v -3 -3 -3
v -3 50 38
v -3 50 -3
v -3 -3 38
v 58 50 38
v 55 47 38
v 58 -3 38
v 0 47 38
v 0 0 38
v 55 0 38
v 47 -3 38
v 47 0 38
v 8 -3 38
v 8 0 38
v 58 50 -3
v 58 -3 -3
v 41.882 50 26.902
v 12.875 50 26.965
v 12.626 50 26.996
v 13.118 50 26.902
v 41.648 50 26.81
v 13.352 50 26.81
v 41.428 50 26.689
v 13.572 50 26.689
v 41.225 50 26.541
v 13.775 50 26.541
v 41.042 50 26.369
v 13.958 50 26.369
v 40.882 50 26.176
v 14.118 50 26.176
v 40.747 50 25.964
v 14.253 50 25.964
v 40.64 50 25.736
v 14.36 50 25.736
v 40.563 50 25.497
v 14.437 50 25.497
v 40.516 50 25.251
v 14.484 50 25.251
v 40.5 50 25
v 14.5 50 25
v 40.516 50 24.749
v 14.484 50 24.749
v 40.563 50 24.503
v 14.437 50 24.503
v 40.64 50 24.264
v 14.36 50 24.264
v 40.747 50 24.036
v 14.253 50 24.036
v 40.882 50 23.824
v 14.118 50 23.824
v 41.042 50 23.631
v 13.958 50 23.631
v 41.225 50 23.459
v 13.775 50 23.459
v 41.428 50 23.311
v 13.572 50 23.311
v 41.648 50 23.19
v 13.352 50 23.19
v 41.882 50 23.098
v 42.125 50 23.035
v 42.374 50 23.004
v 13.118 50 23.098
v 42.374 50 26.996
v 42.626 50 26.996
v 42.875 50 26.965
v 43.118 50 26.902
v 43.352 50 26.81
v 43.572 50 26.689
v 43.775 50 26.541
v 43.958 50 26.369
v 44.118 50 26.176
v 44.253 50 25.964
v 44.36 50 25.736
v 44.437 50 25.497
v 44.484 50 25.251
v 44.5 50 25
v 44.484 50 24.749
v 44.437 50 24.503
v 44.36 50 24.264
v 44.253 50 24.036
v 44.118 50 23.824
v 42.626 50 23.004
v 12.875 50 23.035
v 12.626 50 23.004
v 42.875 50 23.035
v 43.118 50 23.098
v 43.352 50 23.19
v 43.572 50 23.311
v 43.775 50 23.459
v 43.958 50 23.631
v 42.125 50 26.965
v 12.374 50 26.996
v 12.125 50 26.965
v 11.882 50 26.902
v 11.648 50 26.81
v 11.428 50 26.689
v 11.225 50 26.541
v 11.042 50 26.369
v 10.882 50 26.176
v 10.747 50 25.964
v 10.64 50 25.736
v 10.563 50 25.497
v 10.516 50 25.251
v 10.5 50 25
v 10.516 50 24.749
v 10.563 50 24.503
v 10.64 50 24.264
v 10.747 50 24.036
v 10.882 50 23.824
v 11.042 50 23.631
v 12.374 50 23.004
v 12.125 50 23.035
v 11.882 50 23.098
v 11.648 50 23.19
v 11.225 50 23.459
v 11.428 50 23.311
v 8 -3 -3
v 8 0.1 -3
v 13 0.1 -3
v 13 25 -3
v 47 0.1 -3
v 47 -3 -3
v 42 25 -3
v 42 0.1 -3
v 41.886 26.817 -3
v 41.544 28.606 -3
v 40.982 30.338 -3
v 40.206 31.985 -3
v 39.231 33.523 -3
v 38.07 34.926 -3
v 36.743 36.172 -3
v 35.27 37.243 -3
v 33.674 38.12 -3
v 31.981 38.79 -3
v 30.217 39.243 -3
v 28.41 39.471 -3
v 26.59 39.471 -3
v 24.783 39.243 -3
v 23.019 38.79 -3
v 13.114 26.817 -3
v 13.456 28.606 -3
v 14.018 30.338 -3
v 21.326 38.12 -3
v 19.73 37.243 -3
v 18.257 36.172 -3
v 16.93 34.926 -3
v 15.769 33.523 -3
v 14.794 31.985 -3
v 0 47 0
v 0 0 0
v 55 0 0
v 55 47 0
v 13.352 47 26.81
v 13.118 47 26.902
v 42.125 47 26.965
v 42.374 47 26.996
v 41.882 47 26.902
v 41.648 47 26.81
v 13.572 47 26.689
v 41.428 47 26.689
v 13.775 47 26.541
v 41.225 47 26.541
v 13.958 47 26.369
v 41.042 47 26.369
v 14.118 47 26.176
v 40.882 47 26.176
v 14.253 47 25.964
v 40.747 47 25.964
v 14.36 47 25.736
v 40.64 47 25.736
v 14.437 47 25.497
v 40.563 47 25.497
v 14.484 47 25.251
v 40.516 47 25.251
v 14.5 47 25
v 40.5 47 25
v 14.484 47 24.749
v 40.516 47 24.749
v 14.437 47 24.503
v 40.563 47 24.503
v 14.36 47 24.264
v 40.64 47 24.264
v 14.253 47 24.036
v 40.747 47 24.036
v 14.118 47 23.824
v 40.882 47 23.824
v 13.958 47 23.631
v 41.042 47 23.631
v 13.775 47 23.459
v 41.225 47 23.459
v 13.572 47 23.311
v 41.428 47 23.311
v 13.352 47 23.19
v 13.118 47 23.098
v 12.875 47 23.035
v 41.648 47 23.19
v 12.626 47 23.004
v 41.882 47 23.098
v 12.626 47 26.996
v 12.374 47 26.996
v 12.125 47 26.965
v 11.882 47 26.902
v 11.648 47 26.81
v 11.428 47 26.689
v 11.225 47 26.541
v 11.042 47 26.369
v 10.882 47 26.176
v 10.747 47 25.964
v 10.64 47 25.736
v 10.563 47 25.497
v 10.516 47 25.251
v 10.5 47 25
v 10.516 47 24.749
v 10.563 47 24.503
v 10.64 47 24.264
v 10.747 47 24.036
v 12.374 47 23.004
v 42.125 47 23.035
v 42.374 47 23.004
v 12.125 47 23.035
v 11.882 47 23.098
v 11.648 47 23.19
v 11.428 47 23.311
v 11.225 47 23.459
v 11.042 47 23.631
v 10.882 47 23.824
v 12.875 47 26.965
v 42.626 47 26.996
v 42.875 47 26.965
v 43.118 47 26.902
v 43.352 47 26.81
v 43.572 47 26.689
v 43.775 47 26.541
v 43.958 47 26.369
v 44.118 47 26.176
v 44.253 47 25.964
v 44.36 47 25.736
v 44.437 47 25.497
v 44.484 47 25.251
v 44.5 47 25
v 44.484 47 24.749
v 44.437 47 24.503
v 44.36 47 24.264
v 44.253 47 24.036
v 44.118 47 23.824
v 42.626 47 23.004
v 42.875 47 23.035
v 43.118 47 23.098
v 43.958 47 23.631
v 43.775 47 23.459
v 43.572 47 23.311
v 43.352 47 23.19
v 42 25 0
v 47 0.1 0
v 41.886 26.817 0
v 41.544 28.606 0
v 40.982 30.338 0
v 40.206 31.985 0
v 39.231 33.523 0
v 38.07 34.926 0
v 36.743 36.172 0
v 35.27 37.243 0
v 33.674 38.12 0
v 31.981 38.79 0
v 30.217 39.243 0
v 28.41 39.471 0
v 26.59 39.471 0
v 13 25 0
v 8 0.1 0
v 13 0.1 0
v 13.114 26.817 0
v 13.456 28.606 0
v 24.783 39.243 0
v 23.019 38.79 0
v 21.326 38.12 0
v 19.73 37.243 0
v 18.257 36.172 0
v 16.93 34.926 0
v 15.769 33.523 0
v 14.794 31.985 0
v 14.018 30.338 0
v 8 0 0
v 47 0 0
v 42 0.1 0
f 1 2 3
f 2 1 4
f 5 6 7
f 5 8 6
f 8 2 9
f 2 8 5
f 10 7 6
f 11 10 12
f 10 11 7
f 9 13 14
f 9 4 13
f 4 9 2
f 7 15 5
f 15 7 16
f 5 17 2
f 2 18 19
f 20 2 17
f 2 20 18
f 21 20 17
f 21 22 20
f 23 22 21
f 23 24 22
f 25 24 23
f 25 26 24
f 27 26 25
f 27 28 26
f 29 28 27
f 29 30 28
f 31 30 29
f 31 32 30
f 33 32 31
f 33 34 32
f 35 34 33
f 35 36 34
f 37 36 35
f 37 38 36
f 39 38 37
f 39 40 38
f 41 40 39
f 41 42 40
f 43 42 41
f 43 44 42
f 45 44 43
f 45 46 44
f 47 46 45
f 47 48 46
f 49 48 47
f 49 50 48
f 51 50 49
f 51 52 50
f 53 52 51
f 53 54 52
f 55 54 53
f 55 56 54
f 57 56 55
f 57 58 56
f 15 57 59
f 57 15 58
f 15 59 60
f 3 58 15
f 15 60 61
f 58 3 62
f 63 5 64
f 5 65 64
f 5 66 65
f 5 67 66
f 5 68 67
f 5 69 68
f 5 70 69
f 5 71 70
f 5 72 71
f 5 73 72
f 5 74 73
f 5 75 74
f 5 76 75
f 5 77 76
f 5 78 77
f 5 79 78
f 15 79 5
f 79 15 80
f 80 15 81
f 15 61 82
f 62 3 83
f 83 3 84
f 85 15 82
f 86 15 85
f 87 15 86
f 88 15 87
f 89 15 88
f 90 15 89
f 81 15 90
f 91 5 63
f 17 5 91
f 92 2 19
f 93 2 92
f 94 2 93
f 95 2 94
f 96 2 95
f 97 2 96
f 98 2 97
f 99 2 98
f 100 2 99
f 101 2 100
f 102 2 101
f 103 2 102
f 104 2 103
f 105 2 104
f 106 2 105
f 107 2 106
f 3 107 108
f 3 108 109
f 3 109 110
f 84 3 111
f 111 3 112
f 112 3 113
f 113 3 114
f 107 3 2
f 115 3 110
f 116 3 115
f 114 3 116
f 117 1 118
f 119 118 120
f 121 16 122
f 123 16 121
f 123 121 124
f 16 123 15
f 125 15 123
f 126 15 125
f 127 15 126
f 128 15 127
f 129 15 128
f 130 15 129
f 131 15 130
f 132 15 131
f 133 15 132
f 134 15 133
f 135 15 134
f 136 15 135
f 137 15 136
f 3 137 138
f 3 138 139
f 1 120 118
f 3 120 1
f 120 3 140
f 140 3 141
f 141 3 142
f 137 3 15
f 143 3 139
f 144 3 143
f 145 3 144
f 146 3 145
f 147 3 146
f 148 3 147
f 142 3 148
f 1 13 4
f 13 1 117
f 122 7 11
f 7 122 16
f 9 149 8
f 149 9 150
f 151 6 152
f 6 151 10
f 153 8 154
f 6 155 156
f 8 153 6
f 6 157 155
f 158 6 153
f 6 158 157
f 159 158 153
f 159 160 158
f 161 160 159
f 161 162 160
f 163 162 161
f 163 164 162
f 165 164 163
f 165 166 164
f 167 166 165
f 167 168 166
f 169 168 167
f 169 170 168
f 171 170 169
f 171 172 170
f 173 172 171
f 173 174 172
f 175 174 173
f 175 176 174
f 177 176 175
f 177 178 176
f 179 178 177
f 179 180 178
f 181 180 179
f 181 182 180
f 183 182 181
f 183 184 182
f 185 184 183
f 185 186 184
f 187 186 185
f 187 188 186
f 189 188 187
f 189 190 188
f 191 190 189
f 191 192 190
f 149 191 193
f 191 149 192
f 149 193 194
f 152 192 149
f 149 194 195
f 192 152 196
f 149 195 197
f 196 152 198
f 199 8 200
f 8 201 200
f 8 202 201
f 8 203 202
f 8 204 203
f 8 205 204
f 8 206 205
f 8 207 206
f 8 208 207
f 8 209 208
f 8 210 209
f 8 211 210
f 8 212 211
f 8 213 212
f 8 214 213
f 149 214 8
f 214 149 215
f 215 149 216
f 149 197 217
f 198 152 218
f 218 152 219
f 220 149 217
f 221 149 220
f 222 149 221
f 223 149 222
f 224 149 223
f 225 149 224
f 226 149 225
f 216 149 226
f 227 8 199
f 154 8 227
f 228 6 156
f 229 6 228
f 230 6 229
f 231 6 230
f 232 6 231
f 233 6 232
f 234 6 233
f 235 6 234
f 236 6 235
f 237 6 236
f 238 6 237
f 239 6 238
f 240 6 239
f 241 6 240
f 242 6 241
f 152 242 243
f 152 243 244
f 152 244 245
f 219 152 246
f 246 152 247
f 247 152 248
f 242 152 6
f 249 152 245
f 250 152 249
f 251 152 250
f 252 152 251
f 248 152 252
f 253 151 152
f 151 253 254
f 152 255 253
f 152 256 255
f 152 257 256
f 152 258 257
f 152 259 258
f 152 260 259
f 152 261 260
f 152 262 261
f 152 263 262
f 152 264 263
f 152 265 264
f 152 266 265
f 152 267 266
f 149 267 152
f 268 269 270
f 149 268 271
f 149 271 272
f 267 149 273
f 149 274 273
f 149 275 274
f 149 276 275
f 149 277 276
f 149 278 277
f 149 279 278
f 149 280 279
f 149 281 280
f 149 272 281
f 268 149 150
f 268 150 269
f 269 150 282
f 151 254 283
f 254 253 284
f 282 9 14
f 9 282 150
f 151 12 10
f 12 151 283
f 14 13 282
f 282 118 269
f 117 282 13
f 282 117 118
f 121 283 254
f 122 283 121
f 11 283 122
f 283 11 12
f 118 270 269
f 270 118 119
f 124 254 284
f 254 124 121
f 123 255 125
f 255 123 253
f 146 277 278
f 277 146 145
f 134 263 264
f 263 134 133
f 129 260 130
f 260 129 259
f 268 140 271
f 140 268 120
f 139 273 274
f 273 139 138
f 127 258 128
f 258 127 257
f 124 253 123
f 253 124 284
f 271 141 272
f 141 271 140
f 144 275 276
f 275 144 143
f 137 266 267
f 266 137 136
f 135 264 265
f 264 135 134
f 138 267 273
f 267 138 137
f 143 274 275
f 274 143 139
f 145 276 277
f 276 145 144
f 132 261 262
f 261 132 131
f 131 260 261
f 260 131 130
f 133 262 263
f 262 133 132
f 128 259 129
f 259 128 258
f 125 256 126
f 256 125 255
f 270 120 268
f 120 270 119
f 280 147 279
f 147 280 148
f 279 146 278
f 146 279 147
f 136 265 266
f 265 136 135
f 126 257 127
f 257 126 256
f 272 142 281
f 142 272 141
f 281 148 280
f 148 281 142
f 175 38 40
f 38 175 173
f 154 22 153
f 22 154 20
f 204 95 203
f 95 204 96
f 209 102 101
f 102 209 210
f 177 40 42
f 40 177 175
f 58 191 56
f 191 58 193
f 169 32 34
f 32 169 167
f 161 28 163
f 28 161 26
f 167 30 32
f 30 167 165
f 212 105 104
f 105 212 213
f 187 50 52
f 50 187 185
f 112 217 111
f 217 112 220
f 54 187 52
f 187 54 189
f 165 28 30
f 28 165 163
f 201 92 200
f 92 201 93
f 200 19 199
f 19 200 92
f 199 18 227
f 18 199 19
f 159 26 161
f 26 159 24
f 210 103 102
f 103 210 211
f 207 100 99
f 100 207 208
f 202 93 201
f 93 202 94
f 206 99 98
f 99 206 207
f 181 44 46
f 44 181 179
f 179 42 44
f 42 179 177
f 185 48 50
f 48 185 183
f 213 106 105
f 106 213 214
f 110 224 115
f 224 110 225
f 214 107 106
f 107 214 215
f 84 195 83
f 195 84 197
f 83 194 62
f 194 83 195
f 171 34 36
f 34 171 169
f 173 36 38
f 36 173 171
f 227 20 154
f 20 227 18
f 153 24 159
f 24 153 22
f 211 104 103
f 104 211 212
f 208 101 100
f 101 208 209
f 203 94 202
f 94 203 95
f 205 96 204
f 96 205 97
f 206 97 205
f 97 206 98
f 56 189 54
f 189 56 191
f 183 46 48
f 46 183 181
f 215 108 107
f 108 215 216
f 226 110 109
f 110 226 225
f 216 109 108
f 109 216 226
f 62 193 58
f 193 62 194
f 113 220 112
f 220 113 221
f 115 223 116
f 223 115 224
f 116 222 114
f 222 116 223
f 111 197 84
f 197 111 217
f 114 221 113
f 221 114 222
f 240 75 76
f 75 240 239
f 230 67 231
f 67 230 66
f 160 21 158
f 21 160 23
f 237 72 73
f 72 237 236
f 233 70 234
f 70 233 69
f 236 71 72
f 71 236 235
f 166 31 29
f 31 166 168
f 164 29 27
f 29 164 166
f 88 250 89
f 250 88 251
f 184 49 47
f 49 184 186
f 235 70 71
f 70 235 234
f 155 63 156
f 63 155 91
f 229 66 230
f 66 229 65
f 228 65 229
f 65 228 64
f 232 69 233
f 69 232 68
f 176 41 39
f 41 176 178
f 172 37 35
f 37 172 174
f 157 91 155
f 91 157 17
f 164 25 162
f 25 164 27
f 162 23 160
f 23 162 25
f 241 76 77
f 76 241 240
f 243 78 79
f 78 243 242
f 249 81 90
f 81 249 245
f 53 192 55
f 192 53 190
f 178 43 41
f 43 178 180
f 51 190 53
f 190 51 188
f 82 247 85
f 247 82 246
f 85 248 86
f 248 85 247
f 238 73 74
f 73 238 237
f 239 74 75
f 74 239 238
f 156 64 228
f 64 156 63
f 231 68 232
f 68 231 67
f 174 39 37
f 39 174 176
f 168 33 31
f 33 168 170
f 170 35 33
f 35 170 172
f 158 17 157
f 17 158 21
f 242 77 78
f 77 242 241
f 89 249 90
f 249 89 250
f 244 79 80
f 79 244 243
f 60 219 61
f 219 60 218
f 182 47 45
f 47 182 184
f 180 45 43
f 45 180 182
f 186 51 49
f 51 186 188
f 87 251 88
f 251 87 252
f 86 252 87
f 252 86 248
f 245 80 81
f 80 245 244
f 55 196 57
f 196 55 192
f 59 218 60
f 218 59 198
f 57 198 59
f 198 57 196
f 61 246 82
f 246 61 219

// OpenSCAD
$fn=50;

difference(){
translate([-3,-3,-3])
  cube([55+6,47+6,38+3]);

cube([55,47,42]);

translate([8,-4,-3.1])
  cube([(55-16),4.1,45]);

  hull(){
  translate([55/2,50/2,-5])
    cylinder(d=29,h=7);
    
  translate([55/2,0,-5])
    cylinder(d=29,h=7);
  };

translate([(55/2)-15,60,25])
  rotate([90,0,0])
    cylinder(d=4,h=20);
translate([(55/2)+15,60,25])
  rotate([90,0,0])
    cylinder(d=4,h=20);
  
};
